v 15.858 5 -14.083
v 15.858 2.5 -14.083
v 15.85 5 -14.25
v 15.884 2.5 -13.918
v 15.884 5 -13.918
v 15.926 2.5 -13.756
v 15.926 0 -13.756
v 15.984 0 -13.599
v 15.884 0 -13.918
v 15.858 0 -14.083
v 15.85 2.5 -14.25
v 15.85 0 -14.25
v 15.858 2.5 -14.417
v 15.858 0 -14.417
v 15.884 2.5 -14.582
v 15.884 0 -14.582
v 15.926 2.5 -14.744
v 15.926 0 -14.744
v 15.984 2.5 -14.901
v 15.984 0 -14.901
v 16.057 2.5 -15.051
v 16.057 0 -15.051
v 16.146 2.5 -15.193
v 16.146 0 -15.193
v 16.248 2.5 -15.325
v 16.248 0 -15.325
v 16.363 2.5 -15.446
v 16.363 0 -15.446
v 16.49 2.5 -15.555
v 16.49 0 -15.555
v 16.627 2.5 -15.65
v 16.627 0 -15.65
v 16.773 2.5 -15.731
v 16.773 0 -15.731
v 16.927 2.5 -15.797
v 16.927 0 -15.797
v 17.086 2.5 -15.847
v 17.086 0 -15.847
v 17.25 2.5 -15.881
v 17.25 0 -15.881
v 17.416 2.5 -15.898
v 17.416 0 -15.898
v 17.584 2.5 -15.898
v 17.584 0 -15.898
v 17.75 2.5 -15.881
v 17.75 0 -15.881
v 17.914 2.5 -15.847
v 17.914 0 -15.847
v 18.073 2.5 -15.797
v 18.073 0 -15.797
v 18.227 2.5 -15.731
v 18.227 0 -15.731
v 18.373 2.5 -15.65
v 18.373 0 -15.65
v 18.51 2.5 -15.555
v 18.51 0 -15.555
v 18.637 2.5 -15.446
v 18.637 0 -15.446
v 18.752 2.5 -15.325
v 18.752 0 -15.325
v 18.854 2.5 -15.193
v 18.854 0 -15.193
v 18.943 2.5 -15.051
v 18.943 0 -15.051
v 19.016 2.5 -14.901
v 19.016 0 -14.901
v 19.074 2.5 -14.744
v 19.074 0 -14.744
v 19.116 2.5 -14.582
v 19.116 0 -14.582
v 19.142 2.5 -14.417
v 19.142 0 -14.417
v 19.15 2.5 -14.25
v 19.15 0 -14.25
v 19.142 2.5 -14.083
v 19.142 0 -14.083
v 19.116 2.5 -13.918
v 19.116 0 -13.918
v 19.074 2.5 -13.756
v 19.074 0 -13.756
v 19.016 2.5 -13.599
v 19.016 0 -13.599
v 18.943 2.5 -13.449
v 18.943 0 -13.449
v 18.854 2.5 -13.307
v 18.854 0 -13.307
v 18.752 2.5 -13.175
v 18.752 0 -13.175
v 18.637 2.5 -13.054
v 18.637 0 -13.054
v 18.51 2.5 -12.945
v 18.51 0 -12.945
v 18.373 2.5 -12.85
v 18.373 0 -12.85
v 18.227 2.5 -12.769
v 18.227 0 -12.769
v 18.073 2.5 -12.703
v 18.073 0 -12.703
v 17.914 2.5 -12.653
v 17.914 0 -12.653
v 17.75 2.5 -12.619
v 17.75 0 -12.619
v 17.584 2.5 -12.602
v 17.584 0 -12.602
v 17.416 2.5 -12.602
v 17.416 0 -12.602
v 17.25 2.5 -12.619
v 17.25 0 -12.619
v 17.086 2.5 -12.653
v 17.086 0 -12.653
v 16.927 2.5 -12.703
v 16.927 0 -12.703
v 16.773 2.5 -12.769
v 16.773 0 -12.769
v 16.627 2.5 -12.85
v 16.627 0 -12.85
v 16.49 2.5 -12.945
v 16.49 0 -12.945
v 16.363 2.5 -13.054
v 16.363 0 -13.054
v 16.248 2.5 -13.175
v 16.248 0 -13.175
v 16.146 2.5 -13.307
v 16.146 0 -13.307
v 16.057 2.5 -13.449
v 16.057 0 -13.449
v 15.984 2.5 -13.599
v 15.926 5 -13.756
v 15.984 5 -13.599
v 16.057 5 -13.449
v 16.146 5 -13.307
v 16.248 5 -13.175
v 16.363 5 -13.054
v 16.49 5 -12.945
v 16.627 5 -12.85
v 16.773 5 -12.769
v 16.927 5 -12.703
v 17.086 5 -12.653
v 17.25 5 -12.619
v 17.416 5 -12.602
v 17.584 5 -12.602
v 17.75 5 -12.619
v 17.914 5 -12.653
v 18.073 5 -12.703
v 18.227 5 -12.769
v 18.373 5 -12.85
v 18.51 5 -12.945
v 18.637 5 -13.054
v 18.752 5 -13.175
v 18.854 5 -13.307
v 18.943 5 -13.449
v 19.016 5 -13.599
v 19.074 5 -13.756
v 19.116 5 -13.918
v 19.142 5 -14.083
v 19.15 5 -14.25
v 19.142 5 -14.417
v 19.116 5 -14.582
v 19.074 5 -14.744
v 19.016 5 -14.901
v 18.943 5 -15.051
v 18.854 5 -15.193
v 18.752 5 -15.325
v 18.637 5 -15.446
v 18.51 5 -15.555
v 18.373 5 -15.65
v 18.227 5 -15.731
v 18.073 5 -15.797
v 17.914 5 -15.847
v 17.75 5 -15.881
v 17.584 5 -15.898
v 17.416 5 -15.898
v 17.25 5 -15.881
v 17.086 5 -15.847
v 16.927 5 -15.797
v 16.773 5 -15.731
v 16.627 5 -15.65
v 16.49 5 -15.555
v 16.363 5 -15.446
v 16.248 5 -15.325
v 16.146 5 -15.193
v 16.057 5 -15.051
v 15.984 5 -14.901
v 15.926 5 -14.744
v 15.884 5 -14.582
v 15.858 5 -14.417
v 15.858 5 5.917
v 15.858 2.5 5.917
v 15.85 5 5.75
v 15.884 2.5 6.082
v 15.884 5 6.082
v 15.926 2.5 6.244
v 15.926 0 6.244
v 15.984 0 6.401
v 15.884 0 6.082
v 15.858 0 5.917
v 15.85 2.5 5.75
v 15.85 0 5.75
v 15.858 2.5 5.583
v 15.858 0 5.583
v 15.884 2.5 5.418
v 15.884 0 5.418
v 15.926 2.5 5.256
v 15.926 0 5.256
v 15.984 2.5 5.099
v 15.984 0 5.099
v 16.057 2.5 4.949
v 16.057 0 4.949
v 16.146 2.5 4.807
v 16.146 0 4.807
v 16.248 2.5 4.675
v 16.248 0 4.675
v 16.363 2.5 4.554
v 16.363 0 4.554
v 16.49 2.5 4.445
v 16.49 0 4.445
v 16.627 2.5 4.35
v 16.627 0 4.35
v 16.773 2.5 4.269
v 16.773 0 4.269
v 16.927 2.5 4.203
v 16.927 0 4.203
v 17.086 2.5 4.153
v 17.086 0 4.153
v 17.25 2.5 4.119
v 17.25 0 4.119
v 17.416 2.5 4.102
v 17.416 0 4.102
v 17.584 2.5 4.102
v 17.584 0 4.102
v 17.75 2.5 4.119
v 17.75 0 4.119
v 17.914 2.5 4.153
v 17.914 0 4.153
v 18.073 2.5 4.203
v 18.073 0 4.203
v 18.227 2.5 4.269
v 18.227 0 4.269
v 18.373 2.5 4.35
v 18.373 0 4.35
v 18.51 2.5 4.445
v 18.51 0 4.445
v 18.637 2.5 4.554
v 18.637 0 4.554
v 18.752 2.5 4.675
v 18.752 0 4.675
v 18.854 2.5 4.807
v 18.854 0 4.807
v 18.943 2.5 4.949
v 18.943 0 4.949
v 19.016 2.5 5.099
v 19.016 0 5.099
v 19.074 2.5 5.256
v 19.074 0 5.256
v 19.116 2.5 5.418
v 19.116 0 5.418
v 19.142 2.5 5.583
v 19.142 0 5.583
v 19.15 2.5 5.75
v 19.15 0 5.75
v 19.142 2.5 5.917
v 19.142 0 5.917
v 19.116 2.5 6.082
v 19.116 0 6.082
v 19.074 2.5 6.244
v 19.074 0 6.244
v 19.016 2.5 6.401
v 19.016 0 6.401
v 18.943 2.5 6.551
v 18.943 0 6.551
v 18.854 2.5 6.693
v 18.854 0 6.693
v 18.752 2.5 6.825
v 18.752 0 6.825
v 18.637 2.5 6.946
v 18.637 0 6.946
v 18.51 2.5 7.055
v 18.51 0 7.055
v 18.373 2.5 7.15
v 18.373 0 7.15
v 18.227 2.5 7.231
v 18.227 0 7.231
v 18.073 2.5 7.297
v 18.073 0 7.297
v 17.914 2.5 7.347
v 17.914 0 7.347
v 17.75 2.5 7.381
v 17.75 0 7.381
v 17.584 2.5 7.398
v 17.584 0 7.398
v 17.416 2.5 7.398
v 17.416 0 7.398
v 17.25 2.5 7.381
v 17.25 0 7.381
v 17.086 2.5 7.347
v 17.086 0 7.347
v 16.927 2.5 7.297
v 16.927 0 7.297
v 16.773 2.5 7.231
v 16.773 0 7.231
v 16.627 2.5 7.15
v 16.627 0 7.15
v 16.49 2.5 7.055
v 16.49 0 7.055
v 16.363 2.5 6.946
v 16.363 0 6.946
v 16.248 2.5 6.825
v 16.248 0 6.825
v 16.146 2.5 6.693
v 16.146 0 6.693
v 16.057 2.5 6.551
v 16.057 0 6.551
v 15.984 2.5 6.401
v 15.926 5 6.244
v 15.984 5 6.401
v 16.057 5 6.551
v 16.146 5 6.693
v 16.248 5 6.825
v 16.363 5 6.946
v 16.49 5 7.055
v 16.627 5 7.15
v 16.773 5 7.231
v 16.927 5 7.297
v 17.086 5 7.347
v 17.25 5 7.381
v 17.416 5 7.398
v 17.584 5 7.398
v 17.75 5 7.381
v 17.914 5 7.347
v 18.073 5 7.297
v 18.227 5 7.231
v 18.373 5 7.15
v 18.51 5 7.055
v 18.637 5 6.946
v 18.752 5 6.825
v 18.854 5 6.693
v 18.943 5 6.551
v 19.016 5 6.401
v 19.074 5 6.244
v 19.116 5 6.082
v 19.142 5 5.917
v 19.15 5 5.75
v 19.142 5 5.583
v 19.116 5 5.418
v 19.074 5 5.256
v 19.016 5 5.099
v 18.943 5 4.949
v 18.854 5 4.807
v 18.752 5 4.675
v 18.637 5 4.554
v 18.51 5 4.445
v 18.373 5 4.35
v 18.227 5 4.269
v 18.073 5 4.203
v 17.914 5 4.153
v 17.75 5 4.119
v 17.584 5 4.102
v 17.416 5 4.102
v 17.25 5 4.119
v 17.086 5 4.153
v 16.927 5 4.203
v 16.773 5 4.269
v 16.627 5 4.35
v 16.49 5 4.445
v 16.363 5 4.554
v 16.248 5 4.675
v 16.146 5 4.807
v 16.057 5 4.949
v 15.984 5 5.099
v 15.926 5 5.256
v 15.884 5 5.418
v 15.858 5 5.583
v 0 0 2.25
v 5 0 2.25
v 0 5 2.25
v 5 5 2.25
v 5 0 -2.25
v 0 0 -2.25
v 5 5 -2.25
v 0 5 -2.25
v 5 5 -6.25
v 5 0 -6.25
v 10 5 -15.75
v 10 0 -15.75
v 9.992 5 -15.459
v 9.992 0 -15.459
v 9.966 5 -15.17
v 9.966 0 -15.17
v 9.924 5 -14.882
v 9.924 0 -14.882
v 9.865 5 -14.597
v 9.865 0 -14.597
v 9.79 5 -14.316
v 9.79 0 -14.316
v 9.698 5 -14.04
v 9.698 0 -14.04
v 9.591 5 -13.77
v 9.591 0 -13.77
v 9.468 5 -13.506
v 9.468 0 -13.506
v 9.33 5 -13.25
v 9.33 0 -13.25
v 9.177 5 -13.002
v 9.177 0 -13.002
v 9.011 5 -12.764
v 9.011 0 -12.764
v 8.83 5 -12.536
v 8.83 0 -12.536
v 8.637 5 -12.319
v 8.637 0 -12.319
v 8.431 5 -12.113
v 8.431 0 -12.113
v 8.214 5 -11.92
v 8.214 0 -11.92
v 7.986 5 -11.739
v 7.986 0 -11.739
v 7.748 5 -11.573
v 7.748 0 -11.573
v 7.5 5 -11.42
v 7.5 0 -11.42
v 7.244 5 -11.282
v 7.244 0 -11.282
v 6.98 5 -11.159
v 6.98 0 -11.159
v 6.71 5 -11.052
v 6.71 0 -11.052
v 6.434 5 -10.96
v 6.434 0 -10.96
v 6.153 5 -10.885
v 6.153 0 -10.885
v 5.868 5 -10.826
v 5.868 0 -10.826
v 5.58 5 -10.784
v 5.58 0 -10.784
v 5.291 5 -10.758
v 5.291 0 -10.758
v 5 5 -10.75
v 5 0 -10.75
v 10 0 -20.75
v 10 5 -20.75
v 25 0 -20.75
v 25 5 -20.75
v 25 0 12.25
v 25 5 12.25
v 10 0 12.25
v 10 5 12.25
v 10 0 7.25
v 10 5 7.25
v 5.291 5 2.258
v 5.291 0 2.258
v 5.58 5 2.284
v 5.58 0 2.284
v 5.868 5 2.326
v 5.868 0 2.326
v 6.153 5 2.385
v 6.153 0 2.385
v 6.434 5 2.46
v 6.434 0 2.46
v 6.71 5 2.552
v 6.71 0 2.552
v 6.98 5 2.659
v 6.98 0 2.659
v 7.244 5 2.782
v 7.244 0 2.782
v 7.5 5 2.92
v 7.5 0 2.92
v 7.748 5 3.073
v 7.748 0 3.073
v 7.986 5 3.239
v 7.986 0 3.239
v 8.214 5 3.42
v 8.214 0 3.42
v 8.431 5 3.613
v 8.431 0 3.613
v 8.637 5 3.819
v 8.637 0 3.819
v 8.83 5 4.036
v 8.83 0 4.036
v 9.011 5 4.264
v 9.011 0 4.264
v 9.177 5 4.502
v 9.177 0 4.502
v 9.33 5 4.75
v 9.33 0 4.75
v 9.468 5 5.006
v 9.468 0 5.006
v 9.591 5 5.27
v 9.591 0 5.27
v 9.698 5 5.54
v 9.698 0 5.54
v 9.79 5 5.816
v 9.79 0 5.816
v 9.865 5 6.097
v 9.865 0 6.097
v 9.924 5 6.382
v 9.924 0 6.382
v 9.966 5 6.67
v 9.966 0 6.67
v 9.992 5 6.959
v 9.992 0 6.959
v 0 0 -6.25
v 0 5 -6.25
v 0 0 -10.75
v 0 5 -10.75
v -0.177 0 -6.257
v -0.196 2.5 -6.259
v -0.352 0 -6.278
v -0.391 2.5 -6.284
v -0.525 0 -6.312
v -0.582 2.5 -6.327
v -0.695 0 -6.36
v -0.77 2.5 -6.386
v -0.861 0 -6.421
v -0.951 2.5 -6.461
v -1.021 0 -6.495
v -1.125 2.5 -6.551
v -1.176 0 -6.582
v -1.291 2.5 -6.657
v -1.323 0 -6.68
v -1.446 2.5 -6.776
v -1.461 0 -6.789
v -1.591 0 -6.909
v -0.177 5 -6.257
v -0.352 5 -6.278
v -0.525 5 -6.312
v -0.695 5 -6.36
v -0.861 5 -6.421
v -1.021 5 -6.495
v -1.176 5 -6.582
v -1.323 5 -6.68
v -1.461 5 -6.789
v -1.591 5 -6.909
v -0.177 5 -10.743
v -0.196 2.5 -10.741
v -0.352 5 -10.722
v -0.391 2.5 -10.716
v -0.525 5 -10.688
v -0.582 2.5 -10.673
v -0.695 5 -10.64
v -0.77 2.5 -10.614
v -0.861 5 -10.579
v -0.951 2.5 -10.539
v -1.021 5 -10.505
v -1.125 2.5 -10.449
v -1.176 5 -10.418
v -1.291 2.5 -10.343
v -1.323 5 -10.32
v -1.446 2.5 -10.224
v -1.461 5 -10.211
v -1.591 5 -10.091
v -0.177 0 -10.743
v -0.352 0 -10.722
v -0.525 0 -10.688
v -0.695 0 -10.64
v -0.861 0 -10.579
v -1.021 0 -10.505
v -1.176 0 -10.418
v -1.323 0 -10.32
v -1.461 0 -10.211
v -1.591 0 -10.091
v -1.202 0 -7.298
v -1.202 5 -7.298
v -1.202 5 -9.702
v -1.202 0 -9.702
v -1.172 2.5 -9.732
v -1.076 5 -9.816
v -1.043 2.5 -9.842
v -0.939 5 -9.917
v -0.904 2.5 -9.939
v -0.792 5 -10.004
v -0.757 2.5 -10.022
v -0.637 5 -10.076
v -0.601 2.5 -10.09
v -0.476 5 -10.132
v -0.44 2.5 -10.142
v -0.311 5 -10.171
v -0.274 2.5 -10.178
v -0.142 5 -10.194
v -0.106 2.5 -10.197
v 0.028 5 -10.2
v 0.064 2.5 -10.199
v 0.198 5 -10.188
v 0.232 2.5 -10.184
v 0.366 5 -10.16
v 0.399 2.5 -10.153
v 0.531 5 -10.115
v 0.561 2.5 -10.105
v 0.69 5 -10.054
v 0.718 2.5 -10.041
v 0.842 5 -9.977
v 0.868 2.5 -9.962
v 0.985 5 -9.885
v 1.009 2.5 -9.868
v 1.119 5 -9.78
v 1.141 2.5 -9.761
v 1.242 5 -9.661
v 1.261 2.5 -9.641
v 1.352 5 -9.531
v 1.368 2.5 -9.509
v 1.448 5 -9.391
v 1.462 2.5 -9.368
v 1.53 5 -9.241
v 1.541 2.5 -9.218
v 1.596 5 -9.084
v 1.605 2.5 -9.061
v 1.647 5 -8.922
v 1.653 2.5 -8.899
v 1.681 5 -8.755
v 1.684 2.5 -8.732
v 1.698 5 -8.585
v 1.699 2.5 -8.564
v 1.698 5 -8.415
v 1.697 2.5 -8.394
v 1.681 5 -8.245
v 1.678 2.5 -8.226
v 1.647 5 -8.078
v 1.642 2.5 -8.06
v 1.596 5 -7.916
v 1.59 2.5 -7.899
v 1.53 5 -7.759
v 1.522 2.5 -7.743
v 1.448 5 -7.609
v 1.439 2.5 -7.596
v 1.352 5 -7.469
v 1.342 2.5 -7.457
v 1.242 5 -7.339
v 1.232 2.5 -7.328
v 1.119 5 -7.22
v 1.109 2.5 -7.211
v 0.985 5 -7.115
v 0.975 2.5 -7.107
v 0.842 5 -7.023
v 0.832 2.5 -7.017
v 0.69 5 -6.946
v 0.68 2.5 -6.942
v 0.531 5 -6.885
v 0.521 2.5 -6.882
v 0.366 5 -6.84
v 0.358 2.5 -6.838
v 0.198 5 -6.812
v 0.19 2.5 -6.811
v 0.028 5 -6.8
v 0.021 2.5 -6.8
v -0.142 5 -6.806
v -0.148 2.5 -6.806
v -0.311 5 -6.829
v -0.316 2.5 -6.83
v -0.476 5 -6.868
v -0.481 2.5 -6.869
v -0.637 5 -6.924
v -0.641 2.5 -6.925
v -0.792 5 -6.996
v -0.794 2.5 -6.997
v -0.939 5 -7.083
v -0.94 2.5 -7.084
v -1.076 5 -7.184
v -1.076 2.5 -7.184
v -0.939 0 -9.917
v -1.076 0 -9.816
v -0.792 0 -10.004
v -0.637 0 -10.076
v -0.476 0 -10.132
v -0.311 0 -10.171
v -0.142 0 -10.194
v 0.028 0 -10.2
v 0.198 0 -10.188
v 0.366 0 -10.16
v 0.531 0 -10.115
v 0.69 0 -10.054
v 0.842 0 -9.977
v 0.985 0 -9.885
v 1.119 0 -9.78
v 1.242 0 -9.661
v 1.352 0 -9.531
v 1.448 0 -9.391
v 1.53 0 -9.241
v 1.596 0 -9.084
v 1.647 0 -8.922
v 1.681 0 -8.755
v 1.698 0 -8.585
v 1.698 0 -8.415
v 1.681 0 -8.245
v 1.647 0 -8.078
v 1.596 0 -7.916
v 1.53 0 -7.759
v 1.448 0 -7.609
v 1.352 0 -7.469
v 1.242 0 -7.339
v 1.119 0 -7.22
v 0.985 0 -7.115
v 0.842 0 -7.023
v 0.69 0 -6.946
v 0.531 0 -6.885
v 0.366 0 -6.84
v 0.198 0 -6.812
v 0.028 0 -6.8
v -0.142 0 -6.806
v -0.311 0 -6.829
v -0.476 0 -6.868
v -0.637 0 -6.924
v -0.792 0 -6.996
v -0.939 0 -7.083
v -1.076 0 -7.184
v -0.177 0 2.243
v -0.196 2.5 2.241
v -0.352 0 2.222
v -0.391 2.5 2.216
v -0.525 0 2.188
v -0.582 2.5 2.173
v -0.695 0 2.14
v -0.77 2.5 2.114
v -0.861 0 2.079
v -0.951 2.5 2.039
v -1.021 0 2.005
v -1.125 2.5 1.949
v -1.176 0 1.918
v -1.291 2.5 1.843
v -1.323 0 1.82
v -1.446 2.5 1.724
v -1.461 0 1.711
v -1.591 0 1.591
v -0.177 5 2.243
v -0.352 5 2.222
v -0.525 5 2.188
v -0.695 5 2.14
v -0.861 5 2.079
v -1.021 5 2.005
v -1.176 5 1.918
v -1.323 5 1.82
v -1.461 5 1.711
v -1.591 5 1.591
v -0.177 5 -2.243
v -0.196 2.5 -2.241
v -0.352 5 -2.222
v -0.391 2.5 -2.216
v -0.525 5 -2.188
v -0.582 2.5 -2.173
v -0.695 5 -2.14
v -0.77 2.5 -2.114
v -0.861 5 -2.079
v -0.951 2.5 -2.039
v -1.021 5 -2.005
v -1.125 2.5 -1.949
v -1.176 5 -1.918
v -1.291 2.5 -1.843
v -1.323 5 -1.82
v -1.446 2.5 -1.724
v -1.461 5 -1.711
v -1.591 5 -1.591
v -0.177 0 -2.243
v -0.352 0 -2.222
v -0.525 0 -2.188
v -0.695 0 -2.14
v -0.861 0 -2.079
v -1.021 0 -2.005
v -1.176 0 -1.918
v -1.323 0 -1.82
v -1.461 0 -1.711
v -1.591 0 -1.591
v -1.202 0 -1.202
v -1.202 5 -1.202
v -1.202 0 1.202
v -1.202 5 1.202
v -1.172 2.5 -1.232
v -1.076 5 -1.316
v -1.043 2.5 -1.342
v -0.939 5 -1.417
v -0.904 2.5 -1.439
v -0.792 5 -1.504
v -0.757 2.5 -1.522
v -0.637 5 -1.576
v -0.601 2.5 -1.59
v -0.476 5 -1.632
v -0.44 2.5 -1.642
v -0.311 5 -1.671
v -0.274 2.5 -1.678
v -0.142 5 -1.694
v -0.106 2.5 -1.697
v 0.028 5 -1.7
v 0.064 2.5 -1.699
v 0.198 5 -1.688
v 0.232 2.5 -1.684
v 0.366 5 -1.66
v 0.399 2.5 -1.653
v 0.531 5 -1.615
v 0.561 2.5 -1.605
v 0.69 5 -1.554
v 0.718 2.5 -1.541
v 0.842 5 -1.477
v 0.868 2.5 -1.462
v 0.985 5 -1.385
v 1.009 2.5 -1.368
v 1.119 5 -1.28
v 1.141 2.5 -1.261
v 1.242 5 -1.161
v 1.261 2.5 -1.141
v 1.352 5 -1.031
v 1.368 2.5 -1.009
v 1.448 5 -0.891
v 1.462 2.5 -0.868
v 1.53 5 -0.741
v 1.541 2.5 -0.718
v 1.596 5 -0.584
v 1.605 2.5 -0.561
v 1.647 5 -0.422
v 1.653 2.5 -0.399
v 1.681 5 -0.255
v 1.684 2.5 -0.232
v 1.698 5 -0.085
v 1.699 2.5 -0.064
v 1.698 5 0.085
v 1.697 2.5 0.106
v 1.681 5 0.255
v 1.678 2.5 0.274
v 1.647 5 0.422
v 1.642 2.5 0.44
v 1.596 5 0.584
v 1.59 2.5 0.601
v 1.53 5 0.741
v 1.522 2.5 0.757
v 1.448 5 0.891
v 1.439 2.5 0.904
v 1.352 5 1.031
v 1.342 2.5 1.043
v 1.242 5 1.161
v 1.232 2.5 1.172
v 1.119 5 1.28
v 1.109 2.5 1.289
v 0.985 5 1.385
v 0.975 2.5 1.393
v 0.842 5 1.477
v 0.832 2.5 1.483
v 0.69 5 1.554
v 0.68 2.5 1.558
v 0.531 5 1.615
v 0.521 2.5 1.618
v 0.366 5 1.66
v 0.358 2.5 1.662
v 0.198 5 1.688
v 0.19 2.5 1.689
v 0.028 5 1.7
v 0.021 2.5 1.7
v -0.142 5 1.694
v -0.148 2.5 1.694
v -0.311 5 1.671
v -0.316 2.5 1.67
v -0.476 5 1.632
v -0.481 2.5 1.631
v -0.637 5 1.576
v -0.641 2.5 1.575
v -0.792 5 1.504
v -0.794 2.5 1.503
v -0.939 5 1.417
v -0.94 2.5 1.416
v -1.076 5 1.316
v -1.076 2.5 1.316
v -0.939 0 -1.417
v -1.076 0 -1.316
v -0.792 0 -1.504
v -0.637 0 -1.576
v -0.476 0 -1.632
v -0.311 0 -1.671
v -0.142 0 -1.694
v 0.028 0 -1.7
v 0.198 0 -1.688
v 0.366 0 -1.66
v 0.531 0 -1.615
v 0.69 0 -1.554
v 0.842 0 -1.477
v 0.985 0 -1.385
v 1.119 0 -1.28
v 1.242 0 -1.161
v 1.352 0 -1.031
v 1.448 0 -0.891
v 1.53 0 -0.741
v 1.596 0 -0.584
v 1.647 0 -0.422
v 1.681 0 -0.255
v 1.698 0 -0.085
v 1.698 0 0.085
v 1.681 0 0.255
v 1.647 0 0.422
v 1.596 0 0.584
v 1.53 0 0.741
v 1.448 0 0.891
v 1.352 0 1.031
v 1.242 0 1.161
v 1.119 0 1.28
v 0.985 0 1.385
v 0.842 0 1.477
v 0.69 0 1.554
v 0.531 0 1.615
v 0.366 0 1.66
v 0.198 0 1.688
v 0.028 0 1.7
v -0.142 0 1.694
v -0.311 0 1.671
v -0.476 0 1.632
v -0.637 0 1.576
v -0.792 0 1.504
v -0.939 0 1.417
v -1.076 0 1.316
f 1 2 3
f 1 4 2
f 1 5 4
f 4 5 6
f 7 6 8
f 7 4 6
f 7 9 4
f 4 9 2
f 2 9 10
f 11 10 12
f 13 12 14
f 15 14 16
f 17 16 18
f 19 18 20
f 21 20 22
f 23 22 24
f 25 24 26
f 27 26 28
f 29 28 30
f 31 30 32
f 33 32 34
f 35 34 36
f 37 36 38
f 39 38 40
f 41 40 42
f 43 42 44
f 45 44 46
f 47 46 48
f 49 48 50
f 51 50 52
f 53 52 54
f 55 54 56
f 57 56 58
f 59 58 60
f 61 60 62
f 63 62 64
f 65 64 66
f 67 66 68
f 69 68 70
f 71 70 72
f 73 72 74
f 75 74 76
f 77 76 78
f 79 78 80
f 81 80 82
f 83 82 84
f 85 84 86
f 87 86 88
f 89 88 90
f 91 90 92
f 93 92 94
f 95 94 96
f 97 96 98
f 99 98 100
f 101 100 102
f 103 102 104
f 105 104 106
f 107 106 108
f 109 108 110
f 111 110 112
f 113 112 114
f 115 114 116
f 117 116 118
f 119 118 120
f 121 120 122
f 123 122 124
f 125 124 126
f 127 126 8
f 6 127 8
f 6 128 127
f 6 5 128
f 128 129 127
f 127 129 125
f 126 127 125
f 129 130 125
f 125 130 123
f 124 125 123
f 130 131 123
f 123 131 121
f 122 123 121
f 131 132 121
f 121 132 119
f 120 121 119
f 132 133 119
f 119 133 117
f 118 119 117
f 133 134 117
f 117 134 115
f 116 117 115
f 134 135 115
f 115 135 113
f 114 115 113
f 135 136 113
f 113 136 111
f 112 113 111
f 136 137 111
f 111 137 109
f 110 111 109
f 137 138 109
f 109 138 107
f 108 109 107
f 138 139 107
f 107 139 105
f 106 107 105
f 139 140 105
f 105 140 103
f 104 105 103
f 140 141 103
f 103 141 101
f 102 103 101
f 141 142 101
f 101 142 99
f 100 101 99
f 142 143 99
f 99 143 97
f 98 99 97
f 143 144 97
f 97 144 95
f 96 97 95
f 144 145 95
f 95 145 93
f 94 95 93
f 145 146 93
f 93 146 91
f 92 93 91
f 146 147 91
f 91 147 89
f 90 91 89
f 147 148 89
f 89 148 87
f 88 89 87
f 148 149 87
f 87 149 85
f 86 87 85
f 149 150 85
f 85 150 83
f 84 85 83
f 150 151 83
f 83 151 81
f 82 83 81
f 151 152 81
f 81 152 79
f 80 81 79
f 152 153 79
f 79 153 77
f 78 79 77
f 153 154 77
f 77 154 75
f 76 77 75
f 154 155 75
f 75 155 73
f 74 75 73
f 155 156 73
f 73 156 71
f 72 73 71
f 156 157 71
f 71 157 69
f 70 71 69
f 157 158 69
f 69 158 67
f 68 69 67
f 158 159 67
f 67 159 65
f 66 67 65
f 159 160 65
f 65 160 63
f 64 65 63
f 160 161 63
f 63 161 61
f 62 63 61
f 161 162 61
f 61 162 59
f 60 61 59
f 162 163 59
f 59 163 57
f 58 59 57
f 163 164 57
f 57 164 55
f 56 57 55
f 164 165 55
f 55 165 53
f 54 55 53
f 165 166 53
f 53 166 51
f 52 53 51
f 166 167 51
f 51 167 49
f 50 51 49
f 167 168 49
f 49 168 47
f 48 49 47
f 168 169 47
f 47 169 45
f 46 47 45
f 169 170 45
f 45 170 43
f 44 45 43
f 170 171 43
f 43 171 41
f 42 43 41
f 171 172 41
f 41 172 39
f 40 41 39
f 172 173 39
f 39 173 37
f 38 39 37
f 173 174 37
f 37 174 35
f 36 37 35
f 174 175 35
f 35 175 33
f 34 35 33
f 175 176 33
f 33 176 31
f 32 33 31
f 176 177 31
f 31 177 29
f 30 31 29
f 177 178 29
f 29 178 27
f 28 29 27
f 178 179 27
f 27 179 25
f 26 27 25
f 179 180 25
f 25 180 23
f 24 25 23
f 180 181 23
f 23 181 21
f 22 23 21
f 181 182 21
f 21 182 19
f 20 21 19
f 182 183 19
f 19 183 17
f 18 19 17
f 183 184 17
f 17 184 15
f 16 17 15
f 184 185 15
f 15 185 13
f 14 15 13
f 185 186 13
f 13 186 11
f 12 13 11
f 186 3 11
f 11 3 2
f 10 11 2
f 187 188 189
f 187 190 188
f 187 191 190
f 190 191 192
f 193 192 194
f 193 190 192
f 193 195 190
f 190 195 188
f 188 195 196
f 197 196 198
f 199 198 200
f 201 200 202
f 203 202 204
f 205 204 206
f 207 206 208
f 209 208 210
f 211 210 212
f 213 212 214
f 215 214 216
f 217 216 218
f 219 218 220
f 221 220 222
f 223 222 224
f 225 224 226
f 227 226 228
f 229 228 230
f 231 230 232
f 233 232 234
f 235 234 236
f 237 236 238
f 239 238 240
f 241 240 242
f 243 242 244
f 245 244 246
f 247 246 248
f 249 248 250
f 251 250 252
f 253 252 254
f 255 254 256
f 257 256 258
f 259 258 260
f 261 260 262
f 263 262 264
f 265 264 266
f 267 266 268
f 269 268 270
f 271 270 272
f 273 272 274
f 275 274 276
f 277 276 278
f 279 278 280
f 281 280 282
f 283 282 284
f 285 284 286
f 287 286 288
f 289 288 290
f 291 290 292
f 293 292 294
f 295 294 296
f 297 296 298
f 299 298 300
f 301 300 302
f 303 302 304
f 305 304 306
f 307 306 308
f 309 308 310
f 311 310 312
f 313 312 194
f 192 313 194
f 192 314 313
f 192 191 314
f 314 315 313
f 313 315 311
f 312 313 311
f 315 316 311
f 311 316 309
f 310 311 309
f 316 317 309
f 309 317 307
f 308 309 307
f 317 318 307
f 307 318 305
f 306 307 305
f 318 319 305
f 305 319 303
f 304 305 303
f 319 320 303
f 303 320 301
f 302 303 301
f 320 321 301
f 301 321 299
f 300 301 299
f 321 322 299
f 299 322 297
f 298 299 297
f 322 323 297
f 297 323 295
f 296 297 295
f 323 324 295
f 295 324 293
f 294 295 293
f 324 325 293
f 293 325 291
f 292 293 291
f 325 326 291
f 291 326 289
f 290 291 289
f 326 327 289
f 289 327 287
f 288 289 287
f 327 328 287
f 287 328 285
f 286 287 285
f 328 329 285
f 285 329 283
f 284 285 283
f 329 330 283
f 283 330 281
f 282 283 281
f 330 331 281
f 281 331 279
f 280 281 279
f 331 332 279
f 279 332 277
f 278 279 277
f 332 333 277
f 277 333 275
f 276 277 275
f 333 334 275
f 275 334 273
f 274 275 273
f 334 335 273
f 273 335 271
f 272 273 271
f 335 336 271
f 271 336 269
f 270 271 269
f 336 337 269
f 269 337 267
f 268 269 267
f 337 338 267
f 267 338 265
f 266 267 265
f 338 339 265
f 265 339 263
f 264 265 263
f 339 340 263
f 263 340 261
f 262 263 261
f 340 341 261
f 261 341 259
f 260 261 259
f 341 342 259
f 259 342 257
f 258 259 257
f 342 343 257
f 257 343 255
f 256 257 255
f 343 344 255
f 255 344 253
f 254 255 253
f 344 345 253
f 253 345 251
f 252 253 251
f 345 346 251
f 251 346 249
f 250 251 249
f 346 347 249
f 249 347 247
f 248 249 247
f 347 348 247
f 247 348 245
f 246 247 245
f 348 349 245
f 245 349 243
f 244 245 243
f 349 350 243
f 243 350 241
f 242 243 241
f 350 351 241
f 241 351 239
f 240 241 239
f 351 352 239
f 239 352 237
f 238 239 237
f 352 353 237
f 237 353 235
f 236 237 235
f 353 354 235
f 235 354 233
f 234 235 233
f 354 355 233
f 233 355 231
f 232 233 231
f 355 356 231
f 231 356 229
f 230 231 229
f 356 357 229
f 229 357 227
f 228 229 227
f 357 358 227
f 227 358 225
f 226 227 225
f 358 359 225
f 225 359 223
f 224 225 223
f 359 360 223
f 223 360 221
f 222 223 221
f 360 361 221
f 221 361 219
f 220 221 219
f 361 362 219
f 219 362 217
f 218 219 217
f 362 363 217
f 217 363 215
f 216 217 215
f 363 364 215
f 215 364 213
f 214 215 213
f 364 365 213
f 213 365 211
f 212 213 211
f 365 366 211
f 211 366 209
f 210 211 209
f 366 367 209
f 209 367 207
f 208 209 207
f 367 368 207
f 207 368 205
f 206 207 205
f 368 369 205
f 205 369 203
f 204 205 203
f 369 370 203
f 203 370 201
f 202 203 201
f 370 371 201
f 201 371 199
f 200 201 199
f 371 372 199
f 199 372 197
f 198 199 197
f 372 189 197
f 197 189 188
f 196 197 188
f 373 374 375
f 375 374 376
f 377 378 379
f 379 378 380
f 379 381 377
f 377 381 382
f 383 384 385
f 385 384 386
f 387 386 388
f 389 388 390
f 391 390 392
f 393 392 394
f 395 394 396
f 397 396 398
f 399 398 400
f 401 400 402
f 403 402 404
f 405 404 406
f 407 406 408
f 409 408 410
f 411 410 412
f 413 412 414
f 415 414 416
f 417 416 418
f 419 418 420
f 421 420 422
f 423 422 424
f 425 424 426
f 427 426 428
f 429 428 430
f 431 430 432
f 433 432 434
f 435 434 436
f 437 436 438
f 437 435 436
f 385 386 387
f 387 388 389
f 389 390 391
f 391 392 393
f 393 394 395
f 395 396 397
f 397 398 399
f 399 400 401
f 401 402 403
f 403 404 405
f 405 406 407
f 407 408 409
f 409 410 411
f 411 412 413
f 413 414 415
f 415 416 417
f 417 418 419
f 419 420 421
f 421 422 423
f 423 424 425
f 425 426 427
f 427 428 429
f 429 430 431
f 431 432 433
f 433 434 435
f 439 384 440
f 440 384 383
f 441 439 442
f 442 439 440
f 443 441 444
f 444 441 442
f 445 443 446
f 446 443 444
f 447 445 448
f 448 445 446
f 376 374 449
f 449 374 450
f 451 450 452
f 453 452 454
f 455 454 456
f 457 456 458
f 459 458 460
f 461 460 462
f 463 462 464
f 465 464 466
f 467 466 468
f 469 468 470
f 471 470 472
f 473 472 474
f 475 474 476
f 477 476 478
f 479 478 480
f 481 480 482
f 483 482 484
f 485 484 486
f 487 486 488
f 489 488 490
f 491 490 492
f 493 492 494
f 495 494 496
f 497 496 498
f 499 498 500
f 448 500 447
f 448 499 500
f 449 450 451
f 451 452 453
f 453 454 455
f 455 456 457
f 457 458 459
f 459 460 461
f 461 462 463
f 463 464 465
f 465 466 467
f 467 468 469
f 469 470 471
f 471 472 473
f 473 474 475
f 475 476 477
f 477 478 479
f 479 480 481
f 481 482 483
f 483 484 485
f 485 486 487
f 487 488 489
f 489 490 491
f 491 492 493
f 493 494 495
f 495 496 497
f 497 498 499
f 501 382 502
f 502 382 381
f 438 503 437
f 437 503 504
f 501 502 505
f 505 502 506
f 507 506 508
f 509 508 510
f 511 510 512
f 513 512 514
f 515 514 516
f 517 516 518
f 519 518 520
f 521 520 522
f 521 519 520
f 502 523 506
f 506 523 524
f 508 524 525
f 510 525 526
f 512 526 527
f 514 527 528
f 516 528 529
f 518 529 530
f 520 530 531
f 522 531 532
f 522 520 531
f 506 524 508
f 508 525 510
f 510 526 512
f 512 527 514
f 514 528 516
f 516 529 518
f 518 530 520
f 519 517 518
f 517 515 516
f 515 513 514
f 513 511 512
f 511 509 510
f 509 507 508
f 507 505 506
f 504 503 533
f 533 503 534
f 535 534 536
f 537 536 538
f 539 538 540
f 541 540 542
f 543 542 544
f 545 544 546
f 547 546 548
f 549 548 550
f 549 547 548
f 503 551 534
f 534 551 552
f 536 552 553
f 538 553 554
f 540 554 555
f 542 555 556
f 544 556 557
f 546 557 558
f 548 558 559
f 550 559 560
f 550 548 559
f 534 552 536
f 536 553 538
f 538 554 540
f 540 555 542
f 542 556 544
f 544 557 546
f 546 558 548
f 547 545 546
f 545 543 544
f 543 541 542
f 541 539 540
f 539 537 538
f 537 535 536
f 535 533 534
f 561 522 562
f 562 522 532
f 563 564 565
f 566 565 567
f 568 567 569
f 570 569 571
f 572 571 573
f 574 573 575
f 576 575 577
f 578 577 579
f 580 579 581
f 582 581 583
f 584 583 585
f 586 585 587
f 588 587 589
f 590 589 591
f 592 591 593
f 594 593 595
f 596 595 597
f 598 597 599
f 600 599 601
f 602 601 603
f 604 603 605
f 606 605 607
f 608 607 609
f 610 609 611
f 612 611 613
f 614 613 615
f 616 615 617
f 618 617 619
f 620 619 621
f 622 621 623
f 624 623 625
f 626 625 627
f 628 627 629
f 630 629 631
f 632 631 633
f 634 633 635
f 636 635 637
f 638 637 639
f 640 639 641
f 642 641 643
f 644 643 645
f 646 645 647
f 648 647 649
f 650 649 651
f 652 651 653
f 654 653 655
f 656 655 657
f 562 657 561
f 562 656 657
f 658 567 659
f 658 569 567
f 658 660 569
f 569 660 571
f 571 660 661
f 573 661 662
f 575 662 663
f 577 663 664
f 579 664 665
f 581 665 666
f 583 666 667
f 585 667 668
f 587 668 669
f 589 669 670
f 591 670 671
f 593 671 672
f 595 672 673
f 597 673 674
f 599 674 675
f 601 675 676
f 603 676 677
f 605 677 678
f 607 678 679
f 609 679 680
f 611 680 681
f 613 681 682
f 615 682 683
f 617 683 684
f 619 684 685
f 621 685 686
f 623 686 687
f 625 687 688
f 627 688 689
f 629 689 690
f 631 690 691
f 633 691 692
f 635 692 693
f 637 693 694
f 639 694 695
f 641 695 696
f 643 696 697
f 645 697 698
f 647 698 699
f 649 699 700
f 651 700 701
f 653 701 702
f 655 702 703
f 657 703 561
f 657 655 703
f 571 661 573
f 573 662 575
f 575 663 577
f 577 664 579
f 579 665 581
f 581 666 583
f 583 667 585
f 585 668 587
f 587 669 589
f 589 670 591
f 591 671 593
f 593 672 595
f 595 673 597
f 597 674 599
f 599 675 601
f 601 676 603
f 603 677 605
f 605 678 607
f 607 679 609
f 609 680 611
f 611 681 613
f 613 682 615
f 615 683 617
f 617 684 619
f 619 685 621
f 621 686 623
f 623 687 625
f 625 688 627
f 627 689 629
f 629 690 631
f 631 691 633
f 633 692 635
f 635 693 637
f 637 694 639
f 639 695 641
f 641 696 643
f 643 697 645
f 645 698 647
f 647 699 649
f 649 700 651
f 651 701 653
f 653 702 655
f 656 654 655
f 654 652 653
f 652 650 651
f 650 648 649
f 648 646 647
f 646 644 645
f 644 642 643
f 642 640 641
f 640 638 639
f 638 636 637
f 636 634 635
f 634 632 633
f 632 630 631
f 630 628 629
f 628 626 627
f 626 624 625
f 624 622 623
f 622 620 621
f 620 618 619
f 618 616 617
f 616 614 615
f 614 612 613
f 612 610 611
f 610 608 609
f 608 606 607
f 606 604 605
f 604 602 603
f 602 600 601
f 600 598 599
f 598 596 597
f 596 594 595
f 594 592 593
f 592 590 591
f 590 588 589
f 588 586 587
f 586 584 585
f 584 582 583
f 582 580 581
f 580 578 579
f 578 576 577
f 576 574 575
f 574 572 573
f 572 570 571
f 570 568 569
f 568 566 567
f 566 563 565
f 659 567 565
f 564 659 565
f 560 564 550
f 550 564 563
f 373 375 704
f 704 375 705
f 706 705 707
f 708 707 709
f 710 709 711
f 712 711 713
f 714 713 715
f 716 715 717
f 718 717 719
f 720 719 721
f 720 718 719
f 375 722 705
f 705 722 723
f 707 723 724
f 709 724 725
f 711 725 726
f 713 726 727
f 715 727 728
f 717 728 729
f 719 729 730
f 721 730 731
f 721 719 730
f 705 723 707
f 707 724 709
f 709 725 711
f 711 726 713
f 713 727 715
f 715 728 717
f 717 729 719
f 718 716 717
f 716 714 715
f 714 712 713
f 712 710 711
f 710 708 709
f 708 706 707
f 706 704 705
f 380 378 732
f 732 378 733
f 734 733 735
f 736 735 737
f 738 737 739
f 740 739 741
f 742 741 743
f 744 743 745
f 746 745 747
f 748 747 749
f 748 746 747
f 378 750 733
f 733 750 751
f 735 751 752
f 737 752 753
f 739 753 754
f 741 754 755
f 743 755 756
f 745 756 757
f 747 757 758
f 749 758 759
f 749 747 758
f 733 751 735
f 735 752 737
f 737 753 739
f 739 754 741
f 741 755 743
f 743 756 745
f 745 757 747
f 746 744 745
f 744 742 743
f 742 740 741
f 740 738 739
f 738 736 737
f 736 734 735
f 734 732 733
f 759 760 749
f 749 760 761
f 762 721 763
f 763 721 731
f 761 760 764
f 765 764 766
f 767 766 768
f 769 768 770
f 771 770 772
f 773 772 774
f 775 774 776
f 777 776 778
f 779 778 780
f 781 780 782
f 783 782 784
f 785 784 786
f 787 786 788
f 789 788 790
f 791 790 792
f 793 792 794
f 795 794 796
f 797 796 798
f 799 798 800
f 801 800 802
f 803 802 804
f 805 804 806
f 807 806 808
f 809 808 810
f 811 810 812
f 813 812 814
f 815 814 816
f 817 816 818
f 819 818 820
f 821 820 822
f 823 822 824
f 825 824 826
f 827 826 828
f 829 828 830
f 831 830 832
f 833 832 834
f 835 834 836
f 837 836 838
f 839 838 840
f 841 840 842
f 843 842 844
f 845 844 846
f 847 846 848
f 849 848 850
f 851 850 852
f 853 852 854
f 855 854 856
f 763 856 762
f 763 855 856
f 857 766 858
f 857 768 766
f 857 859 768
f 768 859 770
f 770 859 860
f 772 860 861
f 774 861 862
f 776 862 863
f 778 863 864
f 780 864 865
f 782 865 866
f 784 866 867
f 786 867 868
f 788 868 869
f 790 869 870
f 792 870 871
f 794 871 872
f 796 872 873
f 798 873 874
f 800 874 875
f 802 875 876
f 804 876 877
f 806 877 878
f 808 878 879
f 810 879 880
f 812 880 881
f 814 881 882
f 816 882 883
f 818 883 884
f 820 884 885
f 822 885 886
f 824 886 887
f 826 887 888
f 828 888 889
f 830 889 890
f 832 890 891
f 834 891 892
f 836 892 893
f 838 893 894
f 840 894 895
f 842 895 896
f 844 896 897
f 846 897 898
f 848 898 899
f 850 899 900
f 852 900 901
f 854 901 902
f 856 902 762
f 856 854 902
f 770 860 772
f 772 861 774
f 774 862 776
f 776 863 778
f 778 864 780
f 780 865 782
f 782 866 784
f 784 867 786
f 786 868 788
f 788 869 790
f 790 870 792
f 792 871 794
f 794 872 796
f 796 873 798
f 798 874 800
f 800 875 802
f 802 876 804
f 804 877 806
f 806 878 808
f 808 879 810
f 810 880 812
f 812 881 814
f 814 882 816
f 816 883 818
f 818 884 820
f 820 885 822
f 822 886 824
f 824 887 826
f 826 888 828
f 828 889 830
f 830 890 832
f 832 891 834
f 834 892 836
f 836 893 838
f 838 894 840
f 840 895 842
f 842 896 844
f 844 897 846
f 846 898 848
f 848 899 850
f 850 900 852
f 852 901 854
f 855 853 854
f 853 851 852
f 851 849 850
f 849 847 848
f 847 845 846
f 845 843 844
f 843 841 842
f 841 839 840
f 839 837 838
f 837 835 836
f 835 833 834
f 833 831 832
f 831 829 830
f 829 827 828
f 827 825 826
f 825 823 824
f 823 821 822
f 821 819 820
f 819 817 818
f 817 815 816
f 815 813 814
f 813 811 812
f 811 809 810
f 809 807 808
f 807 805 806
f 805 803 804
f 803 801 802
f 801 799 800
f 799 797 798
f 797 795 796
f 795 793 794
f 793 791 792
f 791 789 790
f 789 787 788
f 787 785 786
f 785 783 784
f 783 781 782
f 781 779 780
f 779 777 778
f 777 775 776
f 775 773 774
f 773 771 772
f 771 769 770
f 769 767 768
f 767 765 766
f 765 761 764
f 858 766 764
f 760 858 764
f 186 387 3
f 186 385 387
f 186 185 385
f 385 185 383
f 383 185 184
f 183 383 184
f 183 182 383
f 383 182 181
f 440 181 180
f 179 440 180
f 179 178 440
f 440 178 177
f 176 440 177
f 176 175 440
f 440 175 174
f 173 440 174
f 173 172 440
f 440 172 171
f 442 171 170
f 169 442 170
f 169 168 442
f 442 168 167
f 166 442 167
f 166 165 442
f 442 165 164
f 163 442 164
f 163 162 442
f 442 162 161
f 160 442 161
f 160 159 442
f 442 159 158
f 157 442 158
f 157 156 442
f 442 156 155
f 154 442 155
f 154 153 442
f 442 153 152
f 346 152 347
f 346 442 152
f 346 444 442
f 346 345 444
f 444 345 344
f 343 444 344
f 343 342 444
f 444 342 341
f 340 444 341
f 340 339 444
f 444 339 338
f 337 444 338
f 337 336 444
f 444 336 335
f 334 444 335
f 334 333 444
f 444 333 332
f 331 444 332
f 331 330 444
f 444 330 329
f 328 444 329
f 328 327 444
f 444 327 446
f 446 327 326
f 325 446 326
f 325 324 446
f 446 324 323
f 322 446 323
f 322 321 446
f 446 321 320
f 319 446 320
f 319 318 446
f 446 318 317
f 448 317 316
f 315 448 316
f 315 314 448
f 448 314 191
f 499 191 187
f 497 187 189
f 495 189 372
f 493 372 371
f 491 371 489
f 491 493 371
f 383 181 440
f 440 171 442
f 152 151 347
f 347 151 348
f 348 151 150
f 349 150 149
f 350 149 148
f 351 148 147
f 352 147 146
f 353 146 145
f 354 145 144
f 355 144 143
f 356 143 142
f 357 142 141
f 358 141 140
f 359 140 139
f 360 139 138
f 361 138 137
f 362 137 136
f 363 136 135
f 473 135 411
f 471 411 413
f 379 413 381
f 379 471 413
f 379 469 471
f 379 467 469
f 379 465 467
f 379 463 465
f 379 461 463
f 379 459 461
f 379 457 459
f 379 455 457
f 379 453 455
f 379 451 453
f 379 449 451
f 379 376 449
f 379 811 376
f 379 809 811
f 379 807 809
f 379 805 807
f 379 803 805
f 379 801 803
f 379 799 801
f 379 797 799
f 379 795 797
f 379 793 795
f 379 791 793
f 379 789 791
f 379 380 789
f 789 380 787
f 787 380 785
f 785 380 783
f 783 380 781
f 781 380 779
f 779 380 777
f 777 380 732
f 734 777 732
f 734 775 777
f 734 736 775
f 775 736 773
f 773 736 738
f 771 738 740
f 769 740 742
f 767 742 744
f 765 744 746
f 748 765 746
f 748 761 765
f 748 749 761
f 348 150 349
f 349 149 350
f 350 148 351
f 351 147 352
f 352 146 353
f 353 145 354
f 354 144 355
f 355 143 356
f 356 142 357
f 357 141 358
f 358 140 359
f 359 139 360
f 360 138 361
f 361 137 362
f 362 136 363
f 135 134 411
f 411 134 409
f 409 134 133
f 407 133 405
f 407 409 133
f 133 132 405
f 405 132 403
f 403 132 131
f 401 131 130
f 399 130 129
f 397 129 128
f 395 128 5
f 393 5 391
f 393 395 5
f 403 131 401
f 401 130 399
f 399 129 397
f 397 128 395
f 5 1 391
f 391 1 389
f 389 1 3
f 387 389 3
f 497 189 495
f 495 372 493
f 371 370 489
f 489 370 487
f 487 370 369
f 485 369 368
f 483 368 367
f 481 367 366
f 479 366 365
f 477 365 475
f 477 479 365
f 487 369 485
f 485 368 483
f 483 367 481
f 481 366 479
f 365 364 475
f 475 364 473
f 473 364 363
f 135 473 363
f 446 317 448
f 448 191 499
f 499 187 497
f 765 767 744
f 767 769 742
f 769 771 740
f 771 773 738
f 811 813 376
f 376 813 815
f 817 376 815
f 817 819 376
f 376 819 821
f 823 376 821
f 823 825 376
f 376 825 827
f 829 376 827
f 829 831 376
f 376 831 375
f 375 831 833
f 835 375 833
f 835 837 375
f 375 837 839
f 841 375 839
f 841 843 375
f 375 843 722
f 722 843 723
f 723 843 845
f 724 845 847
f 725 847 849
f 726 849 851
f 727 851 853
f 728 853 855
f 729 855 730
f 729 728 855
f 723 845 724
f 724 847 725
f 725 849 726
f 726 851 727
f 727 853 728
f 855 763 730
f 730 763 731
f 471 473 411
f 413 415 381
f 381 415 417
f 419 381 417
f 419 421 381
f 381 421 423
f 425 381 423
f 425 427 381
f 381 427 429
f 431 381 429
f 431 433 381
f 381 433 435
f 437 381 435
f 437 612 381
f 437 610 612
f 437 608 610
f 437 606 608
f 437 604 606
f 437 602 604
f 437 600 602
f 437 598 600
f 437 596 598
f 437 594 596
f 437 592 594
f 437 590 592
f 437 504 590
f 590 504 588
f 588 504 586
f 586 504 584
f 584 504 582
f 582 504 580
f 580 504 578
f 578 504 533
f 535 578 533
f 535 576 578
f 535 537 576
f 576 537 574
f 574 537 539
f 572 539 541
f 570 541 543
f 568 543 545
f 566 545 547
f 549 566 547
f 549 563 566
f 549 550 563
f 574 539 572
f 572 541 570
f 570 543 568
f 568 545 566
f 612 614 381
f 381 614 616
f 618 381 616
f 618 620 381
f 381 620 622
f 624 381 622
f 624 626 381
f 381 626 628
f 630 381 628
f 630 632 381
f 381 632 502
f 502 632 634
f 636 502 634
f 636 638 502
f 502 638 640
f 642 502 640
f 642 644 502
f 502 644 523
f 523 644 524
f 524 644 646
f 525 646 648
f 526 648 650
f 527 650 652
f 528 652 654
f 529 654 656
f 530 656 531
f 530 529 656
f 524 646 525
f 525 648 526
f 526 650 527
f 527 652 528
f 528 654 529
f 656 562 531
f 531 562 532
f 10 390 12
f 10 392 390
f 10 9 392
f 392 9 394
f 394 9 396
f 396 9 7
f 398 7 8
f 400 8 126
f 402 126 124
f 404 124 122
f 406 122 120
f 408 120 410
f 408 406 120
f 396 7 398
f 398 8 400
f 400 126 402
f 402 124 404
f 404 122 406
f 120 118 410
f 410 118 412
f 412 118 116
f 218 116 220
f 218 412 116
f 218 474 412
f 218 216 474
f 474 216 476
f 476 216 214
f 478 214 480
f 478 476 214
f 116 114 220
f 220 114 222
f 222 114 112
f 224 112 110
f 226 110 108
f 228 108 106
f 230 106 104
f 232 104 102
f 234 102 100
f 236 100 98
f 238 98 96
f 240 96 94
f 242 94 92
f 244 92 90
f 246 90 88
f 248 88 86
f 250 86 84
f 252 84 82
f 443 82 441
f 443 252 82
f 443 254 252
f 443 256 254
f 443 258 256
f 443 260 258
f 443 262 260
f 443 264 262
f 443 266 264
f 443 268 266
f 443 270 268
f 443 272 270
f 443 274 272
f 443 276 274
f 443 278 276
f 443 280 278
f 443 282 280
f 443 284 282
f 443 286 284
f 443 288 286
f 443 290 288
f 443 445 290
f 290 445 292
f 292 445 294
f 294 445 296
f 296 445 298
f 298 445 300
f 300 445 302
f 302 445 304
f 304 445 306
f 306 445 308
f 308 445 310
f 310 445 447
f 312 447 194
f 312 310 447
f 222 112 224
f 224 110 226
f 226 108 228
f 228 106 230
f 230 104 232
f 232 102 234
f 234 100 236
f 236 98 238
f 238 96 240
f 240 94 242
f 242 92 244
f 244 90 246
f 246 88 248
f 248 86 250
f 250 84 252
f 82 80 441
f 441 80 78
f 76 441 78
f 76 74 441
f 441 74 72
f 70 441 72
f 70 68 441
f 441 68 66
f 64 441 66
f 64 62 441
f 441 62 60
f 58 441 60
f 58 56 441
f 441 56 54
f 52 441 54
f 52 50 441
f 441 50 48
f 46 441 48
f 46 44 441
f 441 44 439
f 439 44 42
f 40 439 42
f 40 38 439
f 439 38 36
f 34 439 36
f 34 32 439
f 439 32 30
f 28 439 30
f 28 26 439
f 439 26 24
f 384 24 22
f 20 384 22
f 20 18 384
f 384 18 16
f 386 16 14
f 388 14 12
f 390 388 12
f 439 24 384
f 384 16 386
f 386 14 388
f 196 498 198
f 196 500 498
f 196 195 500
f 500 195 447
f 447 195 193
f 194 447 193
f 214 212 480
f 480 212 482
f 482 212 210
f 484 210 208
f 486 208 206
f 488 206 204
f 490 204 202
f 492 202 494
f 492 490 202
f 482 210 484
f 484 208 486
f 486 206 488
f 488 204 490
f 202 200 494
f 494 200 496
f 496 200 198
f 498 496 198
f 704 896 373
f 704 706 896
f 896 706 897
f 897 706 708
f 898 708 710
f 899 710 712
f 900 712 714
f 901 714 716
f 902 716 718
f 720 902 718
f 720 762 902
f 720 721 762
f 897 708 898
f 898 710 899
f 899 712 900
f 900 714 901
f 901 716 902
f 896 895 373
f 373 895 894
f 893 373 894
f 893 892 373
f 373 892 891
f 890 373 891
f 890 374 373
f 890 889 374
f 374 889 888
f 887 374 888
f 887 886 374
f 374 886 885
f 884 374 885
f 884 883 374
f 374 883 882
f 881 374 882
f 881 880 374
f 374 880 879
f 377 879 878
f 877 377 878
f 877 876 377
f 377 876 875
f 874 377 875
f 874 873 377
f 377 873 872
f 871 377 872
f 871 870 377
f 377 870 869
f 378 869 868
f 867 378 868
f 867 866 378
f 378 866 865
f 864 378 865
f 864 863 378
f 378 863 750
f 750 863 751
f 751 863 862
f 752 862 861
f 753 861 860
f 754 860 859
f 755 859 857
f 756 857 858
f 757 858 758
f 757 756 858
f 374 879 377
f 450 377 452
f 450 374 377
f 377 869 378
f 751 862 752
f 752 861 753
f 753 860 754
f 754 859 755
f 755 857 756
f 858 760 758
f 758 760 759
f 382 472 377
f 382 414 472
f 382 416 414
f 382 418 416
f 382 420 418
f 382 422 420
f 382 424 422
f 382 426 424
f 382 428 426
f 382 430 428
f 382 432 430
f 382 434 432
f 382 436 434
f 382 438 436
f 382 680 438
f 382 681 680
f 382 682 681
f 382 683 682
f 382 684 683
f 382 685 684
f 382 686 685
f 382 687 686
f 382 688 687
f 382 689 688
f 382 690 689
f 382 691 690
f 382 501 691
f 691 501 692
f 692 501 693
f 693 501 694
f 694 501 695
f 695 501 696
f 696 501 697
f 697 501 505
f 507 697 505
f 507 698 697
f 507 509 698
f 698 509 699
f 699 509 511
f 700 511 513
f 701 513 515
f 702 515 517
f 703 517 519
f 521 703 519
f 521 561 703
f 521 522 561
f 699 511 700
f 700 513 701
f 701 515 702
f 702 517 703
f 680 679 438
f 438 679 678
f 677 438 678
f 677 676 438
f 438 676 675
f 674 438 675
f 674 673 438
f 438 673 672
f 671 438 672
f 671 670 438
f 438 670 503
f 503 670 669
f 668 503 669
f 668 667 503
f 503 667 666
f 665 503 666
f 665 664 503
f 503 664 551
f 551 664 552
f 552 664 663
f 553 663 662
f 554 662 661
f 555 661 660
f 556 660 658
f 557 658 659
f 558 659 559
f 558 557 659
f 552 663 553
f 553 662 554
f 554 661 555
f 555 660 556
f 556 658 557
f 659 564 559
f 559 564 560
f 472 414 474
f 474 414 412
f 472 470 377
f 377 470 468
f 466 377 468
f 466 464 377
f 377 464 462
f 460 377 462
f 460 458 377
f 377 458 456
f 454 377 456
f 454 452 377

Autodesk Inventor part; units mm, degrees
ref_plane "YZ Plane" through (0, 0, 0) normal (1, 0, 0) x (0, 1, 0)
ref_plane "XZ Plane" through (0, 0, 0) normal (0, 1, 0) x (-1, 0, 0)
ref_plane "XY Plane" through (0, 0, 0) normal (0, 0, 1) x (1, 0, 0)
sketch "Sketch1" plane through (0, 0, 0) normal (0, 1, 0) x (-1, 0, 0)
  arc A0 (1.2021, 1.2021) -> (1.2021, -1.2021) centre (0, 0) ccw
  arc A1 (1.591, 1.591) -> (1.591, -1.591) centre (0, 0) ccw
  line L0 (0, 2.25) -> (0, 1.7)
  line L1 (0, -1.7) -> (0, -2.25)
  line L2 (0, 0) -> (1.2021, -1.2021)
  line L3 (0, 0) -> (1.7, 0) construction
  line L4 (0, 0) -> (1.2021, 1.2021)
  line L5 (1.2021, -1.2021) -> (1.591, -1.591)
  line L6 (1.2021, 1.2021) -> (1.591, 1.591)
  line L7 (0, 2.25) -> (-5, 2.25)
  line L8 (-5, 2.25) -> (-5, -2.25)
  line L9 (-5, -2.25) -> (0, -2.25)
  line L10 (0, 0) -> (0, -8.5)
  arc A2 (1.2021, -7.2979) -> (1.2021, -9.7021) centre (0, -8.5) ccw
  arc A3 (1.591, -6.909) -> (1.591, -10.091) centre (0, -8.5) ccw
  line L11 (0, -8.5) -> (1.2021, -9.7021)
  line L12 (0, -8.5) -> (1.7, -8.5) construction
  line L13 (0, -8.5) -> (1.2021, -7.2979)
  line L14 (0, -8.5) -> (1.7, -8.5) construction
  line L15 (1.2021, -9.7021) -> (1.591, -10.091)
  line L16 (1.2021, -7.2979) -> (1.591, -6.909)
  line L17 (0, -6.25) -> (-5, -6.25)
  line L18 (0, -10.75) -> (-5, -10.75)
  line L19 (-5, -10.75) -> (-5, -6.25)
  line L20 (-5, -2.25) -> (-5, -6.25)
  line L21 (0, -2.25) -> (-5, -2.25)
  line L22 (-5, -2.25) -> (-5, -6.25)
  line L23 (-5, -6.25) -> (0, -6.25)
  line L24 (0, -6.25) -> (0, -2.25)
  arc A4 (-10, 7.25) -> (-5, 2.25) centre (-5, 7.25) ccw
  arc A5 (-5, -10.75) -> (-10, -15.75) centre (-5, -15.75) ccw
  line L25 (-10, -15.75) -> (-10, -20.75)
  line L26 (-10, 7.25) -> (-10, 12.25)
  line L27 (-10, -20.75) -> (-25, -20.75)
  line L28 (-10, 12.25) -> (-25, 12.25)
  line L29 (-25, 12.25) -> (-25, -20.75)
  line L30 (-5, -4.25) -> (-17.5, -4.25)
  line L31 (-17.5, -4.25) -> (-17.5, -14.25)
  line L32 (-17.5, -4.25) -> (-17.5, 5.75)
  circle A6 centre (-17.5, 5.75) radius 1.65
  circle A7 centre (-17.5, -14.25) radius 1.65
  dimension "d0" = 3.4
  dimension "d1" = 4.5
  dimension "d2" = 45
  dimension "d5" = 5
  dimension "d6" = 8.5
  dimension "d7" = 3.4
  dimension "d8" = 4.5
  dimension "d9" = 45
  dimension "d10" = 45
  dimension "d15" = 5
  dimension "d16" = 5
  dimension "d17" = 15
  dimension "d18" = 15
  dimension "d19" = 10
  dimension "d20" = 10
  dimension "d21" = 3.3
  dimension "d22" = 3.3
extrude "Extrusion3" add sketch "Sketch1" along normal blind 5 contours A0 L0 A1 L6 | A0 L1 A1 L0 | A0 L5 A1 L1 | A1 L9 L8 L7 | L8 L20 L19 A5 L25 L27 L29 L28 L26 A4 | A3 L16 A2 L10 | L10 A2 L15 A3 | A3 L18 L19 L17
properties part number "headphonesclip"
